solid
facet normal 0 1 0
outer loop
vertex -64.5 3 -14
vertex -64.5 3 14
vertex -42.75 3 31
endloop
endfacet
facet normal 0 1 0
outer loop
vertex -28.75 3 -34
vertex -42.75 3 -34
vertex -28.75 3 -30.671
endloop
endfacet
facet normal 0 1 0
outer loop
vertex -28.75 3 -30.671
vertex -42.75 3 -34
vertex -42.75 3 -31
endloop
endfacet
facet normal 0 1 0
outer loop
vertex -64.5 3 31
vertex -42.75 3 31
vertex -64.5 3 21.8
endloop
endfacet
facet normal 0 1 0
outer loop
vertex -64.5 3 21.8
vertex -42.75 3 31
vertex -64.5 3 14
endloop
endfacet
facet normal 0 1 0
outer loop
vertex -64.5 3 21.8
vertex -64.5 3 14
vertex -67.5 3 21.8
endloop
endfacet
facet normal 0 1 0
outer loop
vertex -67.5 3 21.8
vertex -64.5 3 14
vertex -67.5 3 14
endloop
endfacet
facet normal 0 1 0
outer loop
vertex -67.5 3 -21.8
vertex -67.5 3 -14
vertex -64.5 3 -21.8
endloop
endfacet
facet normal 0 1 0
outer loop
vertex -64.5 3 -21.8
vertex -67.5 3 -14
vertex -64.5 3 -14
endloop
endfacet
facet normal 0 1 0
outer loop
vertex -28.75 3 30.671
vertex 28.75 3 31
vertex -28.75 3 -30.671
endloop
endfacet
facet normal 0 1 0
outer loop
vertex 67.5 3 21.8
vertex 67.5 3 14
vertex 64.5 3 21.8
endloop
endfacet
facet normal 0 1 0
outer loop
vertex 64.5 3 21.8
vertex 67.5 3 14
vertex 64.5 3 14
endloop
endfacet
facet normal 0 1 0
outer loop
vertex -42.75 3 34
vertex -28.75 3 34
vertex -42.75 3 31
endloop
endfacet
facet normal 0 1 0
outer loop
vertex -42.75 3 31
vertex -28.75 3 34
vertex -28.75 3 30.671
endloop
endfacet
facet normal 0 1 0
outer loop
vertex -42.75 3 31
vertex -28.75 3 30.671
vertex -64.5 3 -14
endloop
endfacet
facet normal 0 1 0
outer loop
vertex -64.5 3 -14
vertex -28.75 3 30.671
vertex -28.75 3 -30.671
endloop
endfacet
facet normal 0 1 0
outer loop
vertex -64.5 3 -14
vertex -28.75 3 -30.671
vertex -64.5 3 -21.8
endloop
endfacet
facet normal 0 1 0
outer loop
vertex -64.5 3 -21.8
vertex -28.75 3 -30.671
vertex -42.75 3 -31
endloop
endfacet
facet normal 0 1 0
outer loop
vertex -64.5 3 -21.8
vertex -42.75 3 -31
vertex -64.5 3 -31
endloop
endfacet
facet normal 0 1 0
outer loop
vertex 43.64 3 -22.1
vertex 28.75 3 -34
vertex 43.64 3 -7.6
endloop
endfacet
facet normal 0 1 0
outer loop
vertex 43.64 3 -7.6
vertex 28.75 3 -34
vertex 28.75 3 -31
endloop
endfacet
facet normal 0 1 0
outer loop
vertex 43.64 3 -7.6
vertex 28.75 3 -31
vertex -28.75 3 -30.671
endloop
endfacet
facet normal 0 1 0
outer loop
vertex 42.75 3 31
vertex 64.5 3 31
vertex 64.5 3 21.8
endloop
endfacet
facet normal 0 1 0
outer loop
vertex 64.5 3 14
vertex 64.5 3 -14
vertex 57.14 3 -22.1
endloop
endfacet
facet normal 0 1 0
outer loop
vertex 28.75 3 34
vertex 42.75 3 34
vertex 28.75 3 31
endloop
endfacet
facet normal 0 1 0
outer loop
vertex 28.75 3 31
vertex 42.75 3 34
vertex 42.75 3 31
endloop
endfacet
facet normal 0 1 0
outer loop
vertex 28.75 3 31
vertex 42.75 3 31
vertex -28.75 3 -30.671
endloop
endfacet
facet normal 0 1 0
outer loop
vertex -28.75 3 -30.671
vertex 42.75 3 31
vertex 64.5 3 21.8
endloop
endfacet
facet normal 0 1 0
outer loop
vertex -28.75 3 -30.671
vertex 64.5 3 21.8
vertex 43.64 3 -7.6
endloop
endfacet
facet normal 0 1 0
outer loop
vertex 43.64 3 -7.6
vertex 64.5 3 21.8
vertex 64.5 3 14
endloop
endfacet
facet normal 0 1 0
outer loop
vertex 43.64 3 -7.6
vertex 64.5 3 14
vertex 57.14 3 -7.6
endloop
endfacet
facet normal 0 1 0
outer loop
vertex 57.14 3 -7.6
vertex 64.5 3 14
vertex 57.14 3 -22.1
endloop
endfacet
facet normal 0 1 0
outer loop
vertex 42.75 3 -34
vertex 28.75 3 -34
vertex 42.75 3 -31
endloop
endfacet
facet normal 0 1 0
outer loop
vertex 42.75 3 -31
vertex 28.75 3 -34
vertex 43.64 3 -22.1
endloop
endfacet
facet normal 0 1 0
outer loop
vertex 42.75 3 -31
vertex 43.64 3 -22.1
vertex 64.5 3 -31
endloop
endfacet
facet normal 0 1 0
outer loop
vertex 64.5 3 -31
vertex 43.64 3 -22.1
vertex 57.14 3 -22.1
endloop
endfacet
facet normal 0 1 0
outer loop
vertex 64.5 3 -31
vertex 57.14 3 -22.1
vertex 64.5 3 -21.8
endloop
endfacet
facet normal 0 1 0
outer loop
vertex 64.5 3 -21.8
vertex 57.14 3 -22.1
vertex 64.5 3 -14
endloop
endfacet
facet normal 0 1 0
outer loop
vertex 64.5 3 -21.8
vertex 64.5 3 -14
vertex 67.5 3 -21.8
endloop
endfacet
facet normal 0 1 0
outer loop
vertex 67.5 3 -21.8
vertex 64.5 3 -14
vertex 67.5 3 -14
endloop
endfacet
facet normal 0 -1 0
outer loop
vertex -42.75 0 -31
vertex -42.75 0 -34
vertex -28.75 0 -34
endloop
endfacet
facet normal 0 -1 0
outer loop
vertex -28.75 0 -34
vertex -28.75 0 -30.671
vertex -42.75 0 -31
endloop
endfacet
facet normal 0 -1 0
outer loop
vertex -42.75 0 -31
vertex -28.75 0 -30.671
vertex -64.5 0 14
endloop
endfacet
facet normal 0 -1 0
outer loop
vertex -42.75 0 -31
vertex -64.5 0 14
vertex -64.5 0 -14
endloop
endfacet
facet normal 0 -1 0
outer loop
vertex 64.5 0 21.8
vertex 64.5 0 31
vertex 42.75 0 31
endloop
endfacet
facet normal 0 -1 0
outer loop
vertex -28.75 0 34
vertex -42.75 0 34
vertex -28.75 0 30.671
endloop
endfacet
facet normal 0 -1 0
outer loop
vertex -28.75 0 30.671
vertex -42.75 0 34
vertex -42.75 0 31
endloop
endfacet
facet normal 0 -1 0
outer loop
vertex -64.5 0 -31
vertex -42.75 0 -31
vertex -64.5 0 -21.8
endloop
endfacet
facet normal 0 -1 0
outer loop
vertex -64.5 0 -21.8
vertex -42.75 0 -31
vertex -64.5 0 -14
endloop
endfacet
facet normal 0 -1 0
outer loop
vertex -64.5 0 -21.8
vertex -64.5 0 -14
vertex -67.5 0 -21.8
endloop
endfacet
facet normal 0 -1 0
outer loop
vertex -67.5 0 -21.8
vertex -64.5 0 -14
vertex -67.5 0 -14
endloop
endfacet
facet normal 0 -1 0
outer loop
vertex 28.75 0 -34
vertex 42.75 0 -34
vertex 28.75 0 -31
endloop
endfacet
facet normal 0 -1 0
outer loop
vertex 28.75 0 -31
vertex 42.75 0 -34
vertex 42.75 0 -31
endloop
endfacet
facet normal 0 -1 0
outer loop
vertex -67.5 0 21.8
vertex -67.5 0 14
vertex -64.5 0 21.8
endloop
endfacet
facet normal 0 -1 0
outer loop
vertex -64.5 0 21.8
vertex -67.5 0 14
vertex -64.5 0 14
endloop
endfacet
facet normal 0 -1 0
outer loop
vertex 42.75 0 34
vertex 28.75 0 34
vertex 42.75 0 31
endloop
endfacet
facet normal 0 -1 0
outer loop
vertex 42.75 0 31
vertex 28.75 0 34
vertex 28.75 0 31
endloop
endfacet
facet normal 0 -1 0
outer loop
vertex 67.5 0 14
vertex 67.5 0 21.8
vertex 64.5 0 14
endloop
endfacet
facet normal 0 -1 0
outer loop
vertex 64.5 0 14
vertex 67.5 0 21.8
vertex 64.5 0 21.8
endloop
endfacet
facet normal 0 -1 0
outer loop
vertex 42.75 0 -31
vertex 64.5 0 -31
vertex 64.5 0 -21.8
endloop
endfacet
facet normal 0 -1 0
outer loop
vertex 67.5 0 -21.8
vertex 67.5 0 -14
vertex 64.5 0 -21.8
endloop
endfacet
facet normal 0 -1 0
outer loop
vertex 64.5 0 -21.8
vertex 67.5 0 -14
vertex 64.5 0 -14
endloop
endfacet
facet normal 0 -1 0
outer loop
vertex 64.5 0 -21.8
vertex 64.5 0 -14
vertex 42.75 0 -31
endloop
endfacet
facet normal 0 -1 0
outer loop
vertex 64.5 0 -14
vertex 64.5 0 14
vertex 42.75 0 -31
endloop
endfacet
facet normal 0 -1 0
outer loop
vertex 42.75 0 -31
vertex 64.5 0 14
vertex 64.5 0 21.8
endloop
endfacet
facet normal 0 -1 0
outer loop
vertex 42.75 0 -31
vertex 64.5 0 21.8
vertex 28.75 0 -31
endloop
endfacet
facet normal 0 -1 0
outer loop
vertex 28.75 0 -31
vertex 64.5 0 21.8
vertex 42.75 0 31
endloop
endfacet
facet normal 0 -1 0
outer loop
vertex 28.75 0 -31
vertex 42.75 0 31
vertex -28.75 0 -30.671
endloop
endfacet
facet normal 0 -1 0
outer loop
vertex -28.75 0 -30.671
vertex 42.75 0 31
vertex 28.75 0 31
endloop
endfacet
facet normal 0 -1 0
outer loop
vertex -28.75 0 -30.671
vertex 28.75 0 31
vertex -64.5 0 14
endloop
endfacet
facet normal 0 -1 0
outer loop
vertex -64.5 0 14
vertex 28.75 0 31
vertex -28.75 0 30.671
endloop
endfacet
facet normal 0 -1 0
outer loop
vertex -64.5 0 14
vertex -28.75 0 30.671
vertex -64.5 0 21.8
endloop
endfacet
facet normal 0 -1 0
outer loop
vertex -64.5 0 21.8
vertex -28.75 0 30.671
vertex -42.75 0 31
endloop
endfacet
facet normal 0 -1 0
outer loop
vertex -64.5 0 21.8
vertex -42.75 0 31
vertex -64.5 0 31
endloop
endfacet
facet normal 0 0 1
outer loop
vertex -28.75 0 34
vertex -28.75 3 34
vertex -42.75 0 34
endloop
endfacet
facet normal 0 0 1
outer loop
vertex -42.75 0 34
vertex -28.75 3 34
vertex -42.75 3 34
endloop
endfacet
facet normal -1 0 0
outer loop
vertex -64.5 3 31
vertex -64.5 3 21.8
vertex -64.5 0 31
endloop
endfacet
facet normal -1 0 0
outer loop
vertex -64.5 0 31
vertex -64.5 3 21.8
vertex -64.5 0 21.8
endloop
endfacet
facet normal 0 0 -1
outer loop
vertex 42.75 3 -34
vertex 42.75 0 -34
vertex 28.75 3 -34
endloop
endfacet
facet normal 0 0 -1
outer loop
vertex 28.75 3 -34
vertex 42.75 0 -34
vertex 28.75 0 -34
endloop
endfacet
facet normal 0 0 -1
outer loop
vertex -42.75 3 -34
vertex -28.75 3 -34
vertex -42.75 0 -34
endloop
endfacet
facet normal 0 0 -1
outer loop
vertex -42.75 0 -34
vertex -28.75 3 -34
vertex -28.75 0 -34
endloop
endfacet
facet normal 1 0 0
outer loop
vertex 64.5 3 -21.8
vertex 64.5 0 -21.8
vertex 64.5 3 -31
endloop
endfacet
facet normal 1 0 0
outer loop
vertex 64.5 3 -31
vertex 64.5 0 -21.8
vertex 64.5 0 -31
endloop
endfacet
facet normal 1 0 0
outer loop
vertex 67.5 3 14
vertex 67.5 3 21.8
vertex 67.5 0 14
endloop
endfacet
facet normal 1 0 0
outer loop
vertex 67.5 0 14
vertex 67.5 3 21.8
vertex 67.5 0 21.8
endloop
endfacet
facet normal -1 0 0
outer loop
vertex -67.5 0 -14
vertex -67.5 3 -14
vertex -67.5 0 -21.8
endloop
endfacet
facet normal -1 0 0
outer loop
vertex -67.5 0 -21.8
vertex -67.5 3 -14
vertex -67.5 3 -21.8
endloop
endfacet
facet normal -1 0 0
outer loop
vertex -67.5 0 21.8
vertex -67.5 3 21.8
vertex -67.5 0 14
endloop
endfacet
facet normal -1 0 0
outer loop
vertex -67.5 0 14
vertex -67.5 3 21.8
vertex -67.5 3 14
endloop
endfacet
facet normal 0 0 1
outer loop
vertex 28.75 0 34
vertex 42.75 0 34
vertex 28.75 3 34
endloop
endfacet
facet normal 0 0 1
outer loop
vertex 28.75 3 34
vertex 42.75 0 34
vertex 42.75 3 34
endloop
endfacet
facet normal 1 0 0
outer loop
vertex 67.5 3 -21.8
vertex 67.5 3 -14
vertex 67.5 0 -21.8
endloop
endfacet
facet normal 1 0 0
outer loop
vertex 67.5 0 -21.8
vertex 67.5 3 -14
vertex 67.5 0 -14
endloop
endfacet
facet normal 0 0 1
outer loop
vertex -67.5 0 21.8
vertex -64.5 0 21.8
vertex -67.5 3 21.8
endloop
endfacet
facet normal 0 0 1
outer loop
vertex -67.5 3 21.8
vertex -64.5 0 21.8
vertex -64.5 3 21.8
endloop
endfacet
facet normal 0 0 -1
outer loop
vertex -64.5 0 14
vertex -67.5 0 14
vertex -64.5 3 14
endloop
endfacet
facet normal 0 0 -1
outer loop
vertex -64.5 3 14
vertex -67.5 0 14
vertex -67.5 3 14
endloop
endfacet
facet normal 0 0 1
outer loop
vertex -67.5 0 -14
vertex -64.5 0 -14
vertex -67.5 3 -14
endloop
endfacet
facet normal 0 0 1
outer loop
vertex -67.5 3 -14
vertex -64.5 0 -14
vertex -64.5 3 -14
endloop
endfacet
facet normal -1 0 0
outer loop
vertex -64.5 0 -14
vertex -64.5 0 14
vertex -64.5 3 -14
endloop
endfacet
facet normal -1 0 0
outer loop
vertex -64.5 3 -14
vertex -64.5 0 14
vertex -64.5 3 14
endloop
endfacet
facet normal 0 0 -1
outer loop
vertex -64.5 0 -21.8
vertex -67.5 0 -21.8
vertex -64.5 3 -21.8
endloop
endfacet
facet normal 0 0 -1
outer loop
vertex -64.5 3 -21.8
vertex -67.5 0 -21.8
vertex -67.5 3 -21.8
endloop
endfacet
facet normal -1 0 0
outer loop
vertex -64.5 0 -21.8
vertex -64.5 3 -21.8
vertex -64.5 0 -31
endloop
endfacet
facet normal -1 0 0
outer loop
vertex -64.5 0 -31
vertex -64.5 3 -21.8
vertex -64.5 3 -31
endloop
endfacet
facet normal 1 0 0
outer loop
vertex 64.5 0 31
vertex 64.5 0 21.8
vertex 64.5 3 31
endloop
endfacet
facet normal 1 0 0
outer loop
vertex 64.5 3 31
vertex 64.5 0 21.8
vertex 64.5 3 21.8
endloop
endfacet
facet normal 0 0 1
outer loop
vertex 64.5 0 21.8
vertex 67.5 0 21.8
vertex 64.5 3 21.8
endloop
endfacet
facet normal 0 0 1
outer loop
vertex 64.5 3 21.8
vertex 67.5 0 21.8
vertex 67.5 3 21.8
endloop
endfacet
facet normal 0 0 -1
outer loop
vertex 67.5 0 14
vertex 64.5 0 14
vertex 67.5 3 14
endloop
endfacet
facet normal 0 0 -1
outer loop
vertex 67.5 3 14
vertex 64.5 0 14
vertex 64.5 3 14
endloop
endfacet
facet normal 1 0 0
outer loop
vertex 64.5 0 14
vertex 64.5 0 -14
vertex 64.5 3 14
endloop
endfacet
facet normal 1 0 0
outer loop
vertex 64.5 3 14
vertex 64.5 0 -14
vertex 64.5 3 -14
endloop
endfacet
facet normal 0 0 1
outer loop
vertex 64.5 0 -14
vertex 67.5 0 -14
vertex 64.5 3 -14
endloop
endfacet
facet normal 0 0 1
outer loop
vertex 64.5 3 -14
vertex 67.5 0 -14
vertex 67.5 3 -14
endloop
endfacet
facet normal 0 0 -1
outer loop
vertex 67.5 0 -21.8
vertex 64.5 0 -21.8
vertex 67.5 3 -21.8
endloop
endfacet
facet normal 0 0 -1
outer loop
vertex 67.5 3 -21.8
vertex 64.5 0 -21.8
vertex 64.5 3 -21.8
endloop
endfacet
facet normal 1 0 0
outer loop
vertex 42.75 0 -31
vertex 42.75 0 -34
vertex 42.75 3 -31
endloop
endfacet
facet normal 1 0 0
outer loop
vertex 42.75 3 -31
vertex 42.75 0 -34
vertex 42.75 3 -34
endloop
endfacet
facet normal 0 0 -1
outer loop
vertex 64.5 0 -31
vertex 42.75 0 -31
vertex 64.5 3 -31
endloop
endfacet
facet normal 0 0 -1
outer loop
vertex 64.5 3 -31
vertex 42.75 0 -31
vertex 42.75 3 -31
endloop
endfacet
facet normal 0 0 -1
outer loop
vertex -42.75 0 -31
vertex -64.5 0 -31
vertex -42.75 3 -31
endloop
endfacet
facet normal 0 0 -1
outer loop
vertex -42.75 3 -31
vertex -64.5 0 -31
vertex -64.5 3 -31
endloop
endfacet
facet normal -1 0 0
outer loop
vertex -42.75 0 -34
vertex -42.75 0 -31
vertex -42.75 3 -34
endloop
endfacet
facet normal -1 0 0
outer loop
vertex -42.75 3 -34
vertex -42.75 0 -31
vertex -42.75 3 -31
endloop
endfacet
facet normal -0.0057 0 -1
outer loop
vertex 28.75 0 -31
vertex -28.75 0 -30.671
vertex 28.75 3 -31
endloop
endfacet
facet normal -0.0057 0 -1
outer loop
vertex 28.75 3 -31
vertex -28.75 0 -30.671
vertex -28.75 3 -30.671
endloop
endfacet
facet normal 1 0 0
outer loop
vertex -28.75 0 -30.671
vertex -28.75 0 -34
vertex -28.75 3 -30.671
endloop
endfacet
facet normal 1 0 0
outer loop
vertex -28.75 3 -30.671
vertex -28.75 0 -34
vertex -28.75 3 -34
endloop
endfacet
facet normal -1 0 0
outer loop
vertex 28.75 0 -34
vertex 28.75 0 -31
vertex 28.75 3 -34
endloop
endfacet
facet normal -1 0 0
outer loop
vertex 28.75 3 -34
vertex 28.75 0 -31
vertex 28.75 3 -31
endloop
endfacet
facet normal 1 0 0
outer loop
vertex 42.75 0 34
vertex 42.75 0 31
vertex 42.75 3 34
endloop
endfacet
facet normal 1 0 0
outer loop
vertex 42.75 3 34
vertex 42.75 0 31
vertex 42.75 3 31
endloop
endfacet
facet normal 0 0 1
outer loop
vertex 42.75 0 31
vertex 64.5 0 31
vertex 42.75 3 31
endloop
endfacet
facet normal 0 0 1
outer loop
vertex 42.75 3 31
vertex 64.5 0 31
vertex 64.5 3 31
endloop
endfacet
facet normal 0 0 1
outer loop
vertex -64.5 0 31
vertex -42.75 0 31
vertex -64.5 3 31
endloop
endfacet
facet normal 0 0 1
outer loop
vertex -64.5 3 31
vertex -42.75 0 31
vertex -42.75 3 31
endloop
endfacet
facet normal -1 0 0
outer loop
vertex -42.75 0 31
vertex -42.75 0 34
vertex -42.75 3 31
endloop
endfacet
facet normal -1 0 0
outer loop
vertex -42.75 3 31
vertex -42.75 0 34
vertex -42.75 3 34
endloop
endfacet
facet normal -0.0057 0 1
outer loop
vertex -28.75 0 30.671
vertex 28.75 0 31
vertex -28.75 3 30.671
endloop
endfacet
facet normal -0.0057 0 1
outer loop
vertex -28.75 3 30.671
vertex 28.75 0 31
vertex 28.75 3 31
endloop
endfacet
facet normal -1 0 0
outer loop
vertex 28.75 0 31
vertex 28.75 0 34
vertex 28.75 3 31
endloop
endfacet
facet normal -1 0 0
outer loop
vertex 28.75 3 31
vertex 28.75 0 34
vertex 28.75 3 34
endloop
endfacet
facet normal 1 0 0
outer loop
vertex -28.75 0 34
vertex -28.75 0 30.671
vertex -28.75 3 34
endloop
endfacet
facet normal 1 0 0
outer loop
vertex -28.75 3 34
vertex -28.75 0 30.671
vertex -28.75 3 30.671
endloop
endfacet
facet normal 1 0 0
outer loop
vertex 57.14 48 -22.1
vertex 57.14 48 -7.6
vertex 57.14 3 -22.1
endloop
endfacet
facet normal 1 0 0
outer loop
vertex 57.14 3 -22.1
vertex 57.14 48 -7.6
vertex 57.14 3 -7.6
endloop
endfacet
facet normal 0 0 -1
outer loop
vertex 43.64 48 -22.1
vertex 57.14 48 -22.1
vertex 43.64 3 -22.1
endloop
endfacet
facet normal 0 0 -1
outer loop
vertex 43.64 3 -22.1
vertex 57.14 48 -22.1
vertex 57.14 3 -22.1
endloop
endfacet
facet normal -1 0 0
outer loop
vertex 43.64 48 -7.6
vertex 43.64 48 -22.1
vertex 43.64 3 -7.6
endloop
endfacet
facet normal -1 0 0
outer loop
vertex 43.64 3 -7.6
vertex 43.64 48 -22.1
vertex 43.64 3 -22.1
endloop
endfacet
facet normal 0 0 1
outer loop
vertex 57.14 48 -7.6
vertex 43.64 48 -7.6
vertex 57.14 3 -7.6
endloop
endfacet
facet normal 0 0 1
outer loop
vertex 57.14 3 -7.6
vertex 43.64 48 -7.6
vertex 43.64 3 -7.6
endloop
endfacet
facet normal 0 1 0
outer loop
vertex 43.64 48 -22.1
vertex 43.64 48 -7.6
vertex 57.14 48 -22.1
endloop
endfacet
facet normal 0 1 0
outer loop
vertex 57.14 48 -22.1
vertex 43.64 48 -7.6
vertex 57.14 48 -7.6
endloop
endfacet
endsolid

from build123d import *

# Parameters (mm, degrees)
SKETCH1_W           = 135
SKETCH1_H           = 68
BOSS_EXTRUDE1_DEPTH = 3
SKETCH2_W           = 3
SKETCH2_H           = 12.2
SKETCH2_H_2         = 28
CUT_EXTRUDE1_DEPTH  = 3
SKETCH3_W           = 21.75
SKETCH3_H           = 3
CUT_EXTRUDE2_DEPTH  = 3
SKETCH4_W           = 13.5
SKETCH4_H           = 14.5
BOSS_EXTRUDE2_DEPTH = 45


with BuildPart() as part:
    # Sketch1 → Boss-Extrude1 (new body)
    with BuildSketch(Plane(origin=(0, 0, 0), x_dir=(1, 0, 0), z_dir=(0, 1, 0))):
        Rectangle(SKETCH1_W, SKETCH1_H)
    extrude(amount=BOSS_EXTRUDE1_DEPTH)

    # Sketch2 → Cut-Extrude1 (cut)
    with BuildSketch(Plane(origin=(0, 3, 0), x_dir=(1, 0, 0), z_dir=(0, 1, 0))):
        with Locations((-66, 27.9)):
            Rectangle(SKETCH2_W, SKETCH2_H)
        with Locations((-66, 0)):
            Rectangle(SKETCH2_W, SKETCH2_H_2)
        with Locations((-66, -27.9)):
            Rectangle(SKETCH2_W, SKETCH2_H)
    cut_extrude1 = extrude(amount=-CUT_EXTRUDE1_DEPTH, mode=Mode.SUBTRACT)

    # Mirror1: Cut-Extrude1 across plane
    add(cut_extrude1.mirror(Plane(origin=(0, 0, 0), x_dir=(0, 0, 1), z_dir=(1, 0, 0))), mode=Mode.SUBTRACT)

    # Sketch3 → Cut-Extrude2 (cut)
    with BuildSketch(Plane(origin=(0, 3, 0), x_dir=(1, 0, 0), z_dir=(0, 1, 0))):
        with Locations((-53.625, 32.5)):
            Rectangle(SKETCH3_W, SKETCH3_H)
        Polygon((28.75, 34), (-28.75, 34), (-28.75, 30.671368382), (28.75, 31), align=None)
        with Locations((53.625, 32.5)):
            Rectangle(SKETCH3_W, SKETCH3_H)
    cut_extrude2 = extrude(amount=-CUT_EXTRUDE2_DEPTH, mode=Mode.SUBTRACT)

    # Mirror2: Cut-Extrude2 across plane
    add(cut_extrude2.mirror(Plane.XY), mode=Mode.SUBTRACT)

    # Sketch4 → Boss-Extrude2 (add)
    with BuildSketch(Plane(origin=(0, 3, 0), x_dir=(1, 0, 0), z_dir=(0, 1, 0))):
        with Locations((50.39, 14.85)):
            Rectangle(SKETCH4_W, SKETCH4_H)
    extrude(amount=BOSS_EXTRUDE2_DEPTH)


solid = part.part
